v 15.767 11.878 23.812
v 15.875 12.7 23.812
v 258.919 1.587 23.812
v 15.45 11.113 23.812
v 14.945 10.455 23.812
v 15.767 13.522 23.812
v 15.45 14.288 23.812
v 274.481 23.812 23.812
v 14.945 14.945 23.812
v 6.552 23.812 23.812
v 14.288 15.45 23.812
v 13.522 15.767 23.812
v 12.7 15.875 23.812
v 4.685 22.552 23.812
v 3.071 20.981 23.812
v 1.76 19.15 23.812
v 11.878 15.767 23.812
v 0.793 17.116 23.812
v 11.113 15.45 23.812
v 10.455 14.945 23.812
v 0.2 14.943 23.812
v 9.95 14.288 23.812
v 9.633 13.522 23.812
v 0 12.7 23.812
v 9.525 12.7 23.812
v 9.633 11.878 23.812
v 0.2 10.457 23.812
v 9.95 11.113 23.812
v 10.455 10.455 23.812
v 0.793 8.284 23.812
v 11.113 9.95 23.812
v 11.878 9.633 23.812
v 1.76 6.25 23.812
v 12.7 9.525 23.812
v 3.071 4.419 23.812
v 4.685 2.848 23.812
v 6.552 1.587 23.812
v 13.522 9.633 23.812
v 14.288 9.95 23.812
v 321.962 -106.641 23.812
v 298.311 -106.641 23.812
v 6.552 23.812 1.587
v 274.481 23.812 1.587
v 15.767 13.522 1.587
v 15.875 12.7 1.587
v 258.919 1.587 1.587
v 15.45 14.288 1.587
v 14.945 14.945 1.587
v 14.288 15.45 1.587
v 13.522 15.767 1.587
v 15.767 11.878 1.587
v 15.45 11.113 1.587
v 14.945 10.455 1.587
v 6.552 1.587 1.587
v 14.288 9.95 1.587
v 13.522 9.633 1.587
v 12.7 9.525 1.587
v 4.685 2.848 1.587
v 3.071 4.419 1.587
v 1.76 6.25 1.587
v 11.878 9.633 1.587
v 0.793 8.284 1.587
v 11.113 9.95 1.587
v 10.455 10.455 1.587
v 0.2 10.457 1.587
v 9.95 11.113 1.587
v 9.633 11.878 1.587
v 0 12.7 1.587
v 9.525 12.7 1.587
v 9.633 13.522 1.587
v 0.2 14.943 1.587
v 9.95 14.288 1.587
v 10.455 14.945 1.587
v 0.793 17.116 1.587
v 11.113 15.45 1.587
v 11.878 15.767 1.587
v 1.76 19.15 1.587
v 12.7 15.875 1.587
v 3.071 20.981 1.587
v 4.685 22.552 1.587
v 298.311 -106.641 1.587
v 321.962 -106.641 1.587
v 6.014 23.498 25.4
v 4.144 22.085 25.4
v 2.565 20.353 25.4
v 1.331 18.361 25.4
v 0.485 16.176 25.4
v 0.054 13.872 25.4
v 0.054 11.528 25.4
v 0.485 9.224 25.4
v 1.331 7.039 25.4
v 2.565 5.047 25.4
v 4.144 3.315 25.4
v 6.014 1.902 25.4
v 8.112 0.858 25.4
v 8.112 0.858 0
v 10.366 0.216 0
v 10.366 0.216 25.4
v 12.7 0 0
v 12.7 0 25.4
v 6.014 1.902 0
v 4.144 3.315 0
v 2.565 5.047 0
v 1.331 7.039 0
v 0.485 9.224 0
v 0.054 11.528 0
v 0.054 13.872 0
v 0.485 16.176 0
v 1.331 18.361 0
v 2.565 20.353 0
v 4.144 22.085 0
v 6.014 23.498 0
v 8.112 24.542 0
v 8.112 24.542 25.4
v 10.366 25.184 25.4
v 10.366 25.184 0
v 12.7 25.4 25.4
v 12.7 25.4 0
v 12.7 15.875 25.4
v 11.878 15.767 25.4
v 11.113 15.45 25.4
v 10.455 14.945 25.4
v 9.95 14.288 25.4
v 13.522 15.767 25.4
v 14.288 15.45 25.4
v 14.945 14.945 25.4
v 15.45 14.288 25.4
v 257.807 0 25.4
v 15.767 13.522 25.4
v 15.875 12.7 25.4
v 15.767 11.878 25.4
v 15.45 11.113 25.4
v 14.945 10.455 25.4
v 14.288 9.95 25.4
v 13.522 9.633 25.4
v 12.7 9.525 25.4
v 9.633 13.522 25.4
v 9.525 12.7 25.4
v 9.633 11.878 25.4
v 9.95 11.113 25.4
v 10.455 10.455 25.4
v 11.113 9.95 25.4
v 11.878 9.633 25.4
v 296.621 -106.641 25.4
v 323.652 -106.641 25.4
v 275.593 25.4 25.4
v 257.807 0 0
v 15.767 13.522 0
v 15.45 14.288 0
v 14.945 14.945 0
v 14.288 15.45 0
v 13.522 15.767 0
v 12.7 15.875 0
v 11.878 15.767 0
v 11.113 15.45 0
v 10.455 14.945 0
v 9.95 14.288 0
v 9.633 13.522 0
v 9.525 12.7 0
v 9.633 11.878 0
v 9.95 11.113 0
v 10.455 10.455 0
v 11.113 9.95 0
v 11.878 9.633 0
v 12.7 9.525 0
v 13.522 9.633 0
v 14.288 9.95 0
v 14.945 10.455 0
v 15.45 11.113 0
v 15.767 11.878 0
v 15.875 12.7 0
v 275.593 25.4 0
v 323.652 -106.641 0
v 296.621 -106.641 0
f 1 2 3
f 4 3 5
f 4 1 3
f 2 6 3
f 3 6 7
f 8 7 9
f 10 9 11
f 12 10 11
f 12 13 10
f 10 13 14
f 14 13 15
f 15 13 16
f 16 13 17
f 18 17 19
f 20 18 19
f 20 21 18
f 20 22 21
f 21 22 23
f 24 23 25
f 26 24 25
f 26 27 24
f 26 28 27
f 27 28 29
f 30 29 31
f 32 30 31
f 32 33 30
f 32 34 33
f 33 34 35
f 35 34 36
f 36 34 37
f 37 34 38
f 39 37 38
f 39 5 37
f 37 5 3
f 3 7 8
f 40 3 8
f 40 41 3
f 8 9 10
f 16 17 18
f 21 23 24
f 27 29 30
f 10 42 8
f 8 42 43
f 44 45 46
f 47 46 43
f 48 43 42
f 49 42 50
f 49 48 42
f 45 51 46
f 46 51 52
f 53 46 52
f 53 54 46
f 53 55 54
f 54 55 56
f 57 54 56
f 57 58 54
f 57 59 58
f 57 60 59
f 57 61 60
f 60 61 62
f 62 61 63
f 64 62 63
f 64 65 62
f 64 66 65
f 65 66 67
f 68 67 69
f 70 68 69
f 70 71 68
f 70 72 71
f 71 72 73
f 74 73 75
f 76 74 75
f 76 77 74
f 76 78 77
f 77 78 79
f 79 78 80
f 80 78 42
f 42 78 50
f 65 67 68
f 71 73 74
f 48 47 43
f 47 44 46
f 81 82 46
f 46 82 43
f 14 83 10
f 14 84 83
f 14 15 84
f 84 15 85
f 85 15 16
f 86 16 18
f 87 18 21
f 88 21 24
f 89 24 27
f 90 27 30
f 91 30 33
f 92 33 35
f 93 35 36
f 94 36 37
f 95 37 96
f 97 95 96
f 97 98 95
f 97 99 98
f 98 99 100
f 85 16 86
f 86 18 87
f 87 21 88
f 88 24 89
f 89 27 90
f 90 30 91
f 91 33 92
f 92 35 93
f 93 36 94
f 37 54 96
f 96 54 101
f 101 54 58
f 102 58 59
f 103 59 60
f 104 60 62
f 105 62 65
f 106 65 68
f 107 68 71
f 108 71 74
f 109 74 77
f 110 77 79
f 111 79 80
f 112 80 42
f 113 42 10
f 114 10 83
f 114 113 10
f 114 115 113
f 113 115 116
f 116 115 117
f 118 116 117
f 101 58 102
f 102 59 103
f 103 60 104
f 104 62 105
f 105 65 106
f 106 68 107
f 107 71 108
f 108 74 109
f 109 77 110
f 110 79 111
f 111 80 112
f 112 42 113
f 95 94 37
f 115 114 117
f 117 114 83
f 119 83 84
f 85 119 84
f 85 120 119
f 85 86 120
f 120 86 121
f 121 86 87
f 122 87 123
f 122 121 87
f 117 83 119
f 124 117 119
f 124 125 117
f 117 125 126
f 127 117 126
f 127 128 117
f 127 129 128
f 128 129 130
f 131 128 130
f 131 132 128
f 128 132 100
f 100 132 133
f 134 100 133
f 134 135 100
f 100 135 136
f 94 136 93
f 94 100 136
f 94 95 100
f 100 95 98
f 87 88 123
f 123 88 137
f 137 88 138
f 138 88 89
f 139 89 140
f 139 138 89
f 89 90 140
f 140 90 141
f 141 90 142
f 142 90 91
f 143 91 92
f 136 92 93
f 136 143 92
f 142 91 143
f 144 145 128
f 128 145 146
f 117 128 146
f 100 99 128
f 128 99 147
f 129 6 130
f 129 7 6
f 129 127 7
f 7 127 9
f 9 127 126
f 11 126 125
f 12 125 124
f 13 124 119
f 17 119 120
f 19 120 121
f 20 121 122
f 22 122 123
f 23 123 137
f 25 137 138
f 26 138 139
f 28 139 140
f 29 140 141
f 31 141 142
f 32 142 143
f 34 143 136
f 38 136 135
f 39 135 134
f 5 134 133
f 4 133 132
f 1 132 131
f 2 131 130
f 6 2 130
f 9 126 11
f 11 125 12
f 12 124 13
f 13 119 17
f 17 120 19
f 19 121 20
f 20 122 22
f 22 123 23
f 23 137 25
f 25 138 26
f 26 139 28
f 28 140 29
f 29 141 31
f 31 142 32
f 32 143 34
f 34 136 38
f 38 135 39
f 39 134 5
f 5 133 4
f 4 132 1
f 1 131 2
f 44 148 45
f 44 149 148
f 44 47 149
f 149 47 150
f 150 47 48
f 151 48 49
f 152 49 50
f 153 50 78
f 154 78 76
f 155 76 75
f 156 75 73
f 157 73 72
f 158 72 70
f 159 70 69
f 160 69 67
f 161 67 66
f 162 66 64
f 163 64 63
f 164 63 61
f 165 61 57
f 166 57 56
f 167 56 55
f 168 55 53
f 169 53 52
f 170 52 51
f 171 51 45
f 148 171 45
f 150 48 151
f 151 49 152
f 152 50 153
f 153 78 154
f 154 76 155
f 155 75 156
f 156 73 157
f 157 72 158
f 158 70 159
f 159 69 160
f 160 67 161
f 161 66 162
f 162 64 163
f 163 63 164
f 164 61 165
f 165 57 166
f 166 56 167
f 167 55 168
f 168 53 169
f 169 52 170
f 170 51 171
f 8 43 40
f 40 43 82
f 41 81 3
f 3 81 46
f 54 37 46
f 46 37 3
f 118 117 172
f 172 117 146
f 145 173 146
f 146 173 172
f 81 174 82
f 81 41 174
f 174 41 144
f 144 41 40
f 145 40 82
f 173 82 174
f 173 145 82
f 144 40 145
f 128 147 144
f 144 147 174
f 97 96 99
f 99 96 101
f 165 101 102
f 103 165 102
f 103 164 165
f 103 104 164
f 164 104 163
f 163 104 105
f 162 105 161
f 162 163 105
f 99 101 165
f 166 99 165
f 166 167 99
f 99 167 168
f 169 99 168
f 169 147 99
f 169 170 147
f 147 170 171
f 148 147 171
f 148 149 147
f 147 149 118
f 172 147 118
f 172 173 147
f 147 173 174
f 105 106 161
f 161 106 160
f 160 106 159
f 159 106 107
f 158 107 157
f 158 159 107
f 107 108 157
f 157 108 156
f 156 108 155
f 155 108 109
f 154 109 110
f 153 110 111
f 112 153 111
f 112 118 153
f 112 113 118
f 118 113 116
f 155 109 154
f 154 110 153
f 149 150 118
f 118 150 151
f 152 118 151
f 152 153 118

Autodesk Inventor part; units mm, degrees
ref_plane "YZ Plane" through (0, 0, 0) normal (1, 0, 0) x (0, 1, 0)
ref_plane "XZ Plane" through (0, 0, 0) normal (0, 1, 0) x (-1, 0, 0)
ref_plane "XY Plane" through (0, 0, 0) normal (0, 0, 1) x (1, 0, 0)
sketch "Sketch1" plane through (0, 0, 0) normal (0, 0, 1) x (1, 0, 0)
  line L0 (0, 0) -> (257.8074, 0)
  line L1 (275.5926, 25.4) -> (0, 25.4)
  line L2 (0, 25.4) -> (0, 0)
  line L3 (0, 12.7) -> (266.7, 12.7) construction
  line L4 (266.7, 12.7) -> (310.1366, -106.641) construction
  line L5 (275.5926, 25.4) -> (323.6516, -106.641)
  line L6 (323.6516, -106.641) -> (296.6215, -106.641)
  line L7 (296.6215, -106.641) -> (257.8074, 0)
  dimension "d4" = 25.4
  dimension "d5" = 110
  dimension "d6" = 266.7
  dimension "d7" = 127
  dimension "d17" = 110
  dimension "d18" = 25.4
extrude "Extrusion3" add sketch "Sketch1" along normal blind 25.4
shell "Shell3" thickness 1.5875 removed faces 2 at (0, 16.9333, 8.4667) at (305.6315, -106.641, 8.4667)
sketch "Sketch4" plane through (0, 0, 25.4) normal (0, 0, 1) x (1, 0, 0)
  line L0 (0, 0) -> (0, 25.4) projected
  line L1 (257.8074, 0) -> (0, 0) projected
  circle A0 centre (12.7, 12.7) radius 3.175
  dimension "d21" = 6.35
  dimension "d22" = 12.7
  dimension "d23" = 12.7
extrude "Extrusion4" cut sketch "Sketch4" against normal through all
fillet "Fillet2" radius 12.7 2 edges at (0, 0, 12.7) (0, 25.4, 12.7)
properties part number "UpperArm" material "Aluminum-6061"
